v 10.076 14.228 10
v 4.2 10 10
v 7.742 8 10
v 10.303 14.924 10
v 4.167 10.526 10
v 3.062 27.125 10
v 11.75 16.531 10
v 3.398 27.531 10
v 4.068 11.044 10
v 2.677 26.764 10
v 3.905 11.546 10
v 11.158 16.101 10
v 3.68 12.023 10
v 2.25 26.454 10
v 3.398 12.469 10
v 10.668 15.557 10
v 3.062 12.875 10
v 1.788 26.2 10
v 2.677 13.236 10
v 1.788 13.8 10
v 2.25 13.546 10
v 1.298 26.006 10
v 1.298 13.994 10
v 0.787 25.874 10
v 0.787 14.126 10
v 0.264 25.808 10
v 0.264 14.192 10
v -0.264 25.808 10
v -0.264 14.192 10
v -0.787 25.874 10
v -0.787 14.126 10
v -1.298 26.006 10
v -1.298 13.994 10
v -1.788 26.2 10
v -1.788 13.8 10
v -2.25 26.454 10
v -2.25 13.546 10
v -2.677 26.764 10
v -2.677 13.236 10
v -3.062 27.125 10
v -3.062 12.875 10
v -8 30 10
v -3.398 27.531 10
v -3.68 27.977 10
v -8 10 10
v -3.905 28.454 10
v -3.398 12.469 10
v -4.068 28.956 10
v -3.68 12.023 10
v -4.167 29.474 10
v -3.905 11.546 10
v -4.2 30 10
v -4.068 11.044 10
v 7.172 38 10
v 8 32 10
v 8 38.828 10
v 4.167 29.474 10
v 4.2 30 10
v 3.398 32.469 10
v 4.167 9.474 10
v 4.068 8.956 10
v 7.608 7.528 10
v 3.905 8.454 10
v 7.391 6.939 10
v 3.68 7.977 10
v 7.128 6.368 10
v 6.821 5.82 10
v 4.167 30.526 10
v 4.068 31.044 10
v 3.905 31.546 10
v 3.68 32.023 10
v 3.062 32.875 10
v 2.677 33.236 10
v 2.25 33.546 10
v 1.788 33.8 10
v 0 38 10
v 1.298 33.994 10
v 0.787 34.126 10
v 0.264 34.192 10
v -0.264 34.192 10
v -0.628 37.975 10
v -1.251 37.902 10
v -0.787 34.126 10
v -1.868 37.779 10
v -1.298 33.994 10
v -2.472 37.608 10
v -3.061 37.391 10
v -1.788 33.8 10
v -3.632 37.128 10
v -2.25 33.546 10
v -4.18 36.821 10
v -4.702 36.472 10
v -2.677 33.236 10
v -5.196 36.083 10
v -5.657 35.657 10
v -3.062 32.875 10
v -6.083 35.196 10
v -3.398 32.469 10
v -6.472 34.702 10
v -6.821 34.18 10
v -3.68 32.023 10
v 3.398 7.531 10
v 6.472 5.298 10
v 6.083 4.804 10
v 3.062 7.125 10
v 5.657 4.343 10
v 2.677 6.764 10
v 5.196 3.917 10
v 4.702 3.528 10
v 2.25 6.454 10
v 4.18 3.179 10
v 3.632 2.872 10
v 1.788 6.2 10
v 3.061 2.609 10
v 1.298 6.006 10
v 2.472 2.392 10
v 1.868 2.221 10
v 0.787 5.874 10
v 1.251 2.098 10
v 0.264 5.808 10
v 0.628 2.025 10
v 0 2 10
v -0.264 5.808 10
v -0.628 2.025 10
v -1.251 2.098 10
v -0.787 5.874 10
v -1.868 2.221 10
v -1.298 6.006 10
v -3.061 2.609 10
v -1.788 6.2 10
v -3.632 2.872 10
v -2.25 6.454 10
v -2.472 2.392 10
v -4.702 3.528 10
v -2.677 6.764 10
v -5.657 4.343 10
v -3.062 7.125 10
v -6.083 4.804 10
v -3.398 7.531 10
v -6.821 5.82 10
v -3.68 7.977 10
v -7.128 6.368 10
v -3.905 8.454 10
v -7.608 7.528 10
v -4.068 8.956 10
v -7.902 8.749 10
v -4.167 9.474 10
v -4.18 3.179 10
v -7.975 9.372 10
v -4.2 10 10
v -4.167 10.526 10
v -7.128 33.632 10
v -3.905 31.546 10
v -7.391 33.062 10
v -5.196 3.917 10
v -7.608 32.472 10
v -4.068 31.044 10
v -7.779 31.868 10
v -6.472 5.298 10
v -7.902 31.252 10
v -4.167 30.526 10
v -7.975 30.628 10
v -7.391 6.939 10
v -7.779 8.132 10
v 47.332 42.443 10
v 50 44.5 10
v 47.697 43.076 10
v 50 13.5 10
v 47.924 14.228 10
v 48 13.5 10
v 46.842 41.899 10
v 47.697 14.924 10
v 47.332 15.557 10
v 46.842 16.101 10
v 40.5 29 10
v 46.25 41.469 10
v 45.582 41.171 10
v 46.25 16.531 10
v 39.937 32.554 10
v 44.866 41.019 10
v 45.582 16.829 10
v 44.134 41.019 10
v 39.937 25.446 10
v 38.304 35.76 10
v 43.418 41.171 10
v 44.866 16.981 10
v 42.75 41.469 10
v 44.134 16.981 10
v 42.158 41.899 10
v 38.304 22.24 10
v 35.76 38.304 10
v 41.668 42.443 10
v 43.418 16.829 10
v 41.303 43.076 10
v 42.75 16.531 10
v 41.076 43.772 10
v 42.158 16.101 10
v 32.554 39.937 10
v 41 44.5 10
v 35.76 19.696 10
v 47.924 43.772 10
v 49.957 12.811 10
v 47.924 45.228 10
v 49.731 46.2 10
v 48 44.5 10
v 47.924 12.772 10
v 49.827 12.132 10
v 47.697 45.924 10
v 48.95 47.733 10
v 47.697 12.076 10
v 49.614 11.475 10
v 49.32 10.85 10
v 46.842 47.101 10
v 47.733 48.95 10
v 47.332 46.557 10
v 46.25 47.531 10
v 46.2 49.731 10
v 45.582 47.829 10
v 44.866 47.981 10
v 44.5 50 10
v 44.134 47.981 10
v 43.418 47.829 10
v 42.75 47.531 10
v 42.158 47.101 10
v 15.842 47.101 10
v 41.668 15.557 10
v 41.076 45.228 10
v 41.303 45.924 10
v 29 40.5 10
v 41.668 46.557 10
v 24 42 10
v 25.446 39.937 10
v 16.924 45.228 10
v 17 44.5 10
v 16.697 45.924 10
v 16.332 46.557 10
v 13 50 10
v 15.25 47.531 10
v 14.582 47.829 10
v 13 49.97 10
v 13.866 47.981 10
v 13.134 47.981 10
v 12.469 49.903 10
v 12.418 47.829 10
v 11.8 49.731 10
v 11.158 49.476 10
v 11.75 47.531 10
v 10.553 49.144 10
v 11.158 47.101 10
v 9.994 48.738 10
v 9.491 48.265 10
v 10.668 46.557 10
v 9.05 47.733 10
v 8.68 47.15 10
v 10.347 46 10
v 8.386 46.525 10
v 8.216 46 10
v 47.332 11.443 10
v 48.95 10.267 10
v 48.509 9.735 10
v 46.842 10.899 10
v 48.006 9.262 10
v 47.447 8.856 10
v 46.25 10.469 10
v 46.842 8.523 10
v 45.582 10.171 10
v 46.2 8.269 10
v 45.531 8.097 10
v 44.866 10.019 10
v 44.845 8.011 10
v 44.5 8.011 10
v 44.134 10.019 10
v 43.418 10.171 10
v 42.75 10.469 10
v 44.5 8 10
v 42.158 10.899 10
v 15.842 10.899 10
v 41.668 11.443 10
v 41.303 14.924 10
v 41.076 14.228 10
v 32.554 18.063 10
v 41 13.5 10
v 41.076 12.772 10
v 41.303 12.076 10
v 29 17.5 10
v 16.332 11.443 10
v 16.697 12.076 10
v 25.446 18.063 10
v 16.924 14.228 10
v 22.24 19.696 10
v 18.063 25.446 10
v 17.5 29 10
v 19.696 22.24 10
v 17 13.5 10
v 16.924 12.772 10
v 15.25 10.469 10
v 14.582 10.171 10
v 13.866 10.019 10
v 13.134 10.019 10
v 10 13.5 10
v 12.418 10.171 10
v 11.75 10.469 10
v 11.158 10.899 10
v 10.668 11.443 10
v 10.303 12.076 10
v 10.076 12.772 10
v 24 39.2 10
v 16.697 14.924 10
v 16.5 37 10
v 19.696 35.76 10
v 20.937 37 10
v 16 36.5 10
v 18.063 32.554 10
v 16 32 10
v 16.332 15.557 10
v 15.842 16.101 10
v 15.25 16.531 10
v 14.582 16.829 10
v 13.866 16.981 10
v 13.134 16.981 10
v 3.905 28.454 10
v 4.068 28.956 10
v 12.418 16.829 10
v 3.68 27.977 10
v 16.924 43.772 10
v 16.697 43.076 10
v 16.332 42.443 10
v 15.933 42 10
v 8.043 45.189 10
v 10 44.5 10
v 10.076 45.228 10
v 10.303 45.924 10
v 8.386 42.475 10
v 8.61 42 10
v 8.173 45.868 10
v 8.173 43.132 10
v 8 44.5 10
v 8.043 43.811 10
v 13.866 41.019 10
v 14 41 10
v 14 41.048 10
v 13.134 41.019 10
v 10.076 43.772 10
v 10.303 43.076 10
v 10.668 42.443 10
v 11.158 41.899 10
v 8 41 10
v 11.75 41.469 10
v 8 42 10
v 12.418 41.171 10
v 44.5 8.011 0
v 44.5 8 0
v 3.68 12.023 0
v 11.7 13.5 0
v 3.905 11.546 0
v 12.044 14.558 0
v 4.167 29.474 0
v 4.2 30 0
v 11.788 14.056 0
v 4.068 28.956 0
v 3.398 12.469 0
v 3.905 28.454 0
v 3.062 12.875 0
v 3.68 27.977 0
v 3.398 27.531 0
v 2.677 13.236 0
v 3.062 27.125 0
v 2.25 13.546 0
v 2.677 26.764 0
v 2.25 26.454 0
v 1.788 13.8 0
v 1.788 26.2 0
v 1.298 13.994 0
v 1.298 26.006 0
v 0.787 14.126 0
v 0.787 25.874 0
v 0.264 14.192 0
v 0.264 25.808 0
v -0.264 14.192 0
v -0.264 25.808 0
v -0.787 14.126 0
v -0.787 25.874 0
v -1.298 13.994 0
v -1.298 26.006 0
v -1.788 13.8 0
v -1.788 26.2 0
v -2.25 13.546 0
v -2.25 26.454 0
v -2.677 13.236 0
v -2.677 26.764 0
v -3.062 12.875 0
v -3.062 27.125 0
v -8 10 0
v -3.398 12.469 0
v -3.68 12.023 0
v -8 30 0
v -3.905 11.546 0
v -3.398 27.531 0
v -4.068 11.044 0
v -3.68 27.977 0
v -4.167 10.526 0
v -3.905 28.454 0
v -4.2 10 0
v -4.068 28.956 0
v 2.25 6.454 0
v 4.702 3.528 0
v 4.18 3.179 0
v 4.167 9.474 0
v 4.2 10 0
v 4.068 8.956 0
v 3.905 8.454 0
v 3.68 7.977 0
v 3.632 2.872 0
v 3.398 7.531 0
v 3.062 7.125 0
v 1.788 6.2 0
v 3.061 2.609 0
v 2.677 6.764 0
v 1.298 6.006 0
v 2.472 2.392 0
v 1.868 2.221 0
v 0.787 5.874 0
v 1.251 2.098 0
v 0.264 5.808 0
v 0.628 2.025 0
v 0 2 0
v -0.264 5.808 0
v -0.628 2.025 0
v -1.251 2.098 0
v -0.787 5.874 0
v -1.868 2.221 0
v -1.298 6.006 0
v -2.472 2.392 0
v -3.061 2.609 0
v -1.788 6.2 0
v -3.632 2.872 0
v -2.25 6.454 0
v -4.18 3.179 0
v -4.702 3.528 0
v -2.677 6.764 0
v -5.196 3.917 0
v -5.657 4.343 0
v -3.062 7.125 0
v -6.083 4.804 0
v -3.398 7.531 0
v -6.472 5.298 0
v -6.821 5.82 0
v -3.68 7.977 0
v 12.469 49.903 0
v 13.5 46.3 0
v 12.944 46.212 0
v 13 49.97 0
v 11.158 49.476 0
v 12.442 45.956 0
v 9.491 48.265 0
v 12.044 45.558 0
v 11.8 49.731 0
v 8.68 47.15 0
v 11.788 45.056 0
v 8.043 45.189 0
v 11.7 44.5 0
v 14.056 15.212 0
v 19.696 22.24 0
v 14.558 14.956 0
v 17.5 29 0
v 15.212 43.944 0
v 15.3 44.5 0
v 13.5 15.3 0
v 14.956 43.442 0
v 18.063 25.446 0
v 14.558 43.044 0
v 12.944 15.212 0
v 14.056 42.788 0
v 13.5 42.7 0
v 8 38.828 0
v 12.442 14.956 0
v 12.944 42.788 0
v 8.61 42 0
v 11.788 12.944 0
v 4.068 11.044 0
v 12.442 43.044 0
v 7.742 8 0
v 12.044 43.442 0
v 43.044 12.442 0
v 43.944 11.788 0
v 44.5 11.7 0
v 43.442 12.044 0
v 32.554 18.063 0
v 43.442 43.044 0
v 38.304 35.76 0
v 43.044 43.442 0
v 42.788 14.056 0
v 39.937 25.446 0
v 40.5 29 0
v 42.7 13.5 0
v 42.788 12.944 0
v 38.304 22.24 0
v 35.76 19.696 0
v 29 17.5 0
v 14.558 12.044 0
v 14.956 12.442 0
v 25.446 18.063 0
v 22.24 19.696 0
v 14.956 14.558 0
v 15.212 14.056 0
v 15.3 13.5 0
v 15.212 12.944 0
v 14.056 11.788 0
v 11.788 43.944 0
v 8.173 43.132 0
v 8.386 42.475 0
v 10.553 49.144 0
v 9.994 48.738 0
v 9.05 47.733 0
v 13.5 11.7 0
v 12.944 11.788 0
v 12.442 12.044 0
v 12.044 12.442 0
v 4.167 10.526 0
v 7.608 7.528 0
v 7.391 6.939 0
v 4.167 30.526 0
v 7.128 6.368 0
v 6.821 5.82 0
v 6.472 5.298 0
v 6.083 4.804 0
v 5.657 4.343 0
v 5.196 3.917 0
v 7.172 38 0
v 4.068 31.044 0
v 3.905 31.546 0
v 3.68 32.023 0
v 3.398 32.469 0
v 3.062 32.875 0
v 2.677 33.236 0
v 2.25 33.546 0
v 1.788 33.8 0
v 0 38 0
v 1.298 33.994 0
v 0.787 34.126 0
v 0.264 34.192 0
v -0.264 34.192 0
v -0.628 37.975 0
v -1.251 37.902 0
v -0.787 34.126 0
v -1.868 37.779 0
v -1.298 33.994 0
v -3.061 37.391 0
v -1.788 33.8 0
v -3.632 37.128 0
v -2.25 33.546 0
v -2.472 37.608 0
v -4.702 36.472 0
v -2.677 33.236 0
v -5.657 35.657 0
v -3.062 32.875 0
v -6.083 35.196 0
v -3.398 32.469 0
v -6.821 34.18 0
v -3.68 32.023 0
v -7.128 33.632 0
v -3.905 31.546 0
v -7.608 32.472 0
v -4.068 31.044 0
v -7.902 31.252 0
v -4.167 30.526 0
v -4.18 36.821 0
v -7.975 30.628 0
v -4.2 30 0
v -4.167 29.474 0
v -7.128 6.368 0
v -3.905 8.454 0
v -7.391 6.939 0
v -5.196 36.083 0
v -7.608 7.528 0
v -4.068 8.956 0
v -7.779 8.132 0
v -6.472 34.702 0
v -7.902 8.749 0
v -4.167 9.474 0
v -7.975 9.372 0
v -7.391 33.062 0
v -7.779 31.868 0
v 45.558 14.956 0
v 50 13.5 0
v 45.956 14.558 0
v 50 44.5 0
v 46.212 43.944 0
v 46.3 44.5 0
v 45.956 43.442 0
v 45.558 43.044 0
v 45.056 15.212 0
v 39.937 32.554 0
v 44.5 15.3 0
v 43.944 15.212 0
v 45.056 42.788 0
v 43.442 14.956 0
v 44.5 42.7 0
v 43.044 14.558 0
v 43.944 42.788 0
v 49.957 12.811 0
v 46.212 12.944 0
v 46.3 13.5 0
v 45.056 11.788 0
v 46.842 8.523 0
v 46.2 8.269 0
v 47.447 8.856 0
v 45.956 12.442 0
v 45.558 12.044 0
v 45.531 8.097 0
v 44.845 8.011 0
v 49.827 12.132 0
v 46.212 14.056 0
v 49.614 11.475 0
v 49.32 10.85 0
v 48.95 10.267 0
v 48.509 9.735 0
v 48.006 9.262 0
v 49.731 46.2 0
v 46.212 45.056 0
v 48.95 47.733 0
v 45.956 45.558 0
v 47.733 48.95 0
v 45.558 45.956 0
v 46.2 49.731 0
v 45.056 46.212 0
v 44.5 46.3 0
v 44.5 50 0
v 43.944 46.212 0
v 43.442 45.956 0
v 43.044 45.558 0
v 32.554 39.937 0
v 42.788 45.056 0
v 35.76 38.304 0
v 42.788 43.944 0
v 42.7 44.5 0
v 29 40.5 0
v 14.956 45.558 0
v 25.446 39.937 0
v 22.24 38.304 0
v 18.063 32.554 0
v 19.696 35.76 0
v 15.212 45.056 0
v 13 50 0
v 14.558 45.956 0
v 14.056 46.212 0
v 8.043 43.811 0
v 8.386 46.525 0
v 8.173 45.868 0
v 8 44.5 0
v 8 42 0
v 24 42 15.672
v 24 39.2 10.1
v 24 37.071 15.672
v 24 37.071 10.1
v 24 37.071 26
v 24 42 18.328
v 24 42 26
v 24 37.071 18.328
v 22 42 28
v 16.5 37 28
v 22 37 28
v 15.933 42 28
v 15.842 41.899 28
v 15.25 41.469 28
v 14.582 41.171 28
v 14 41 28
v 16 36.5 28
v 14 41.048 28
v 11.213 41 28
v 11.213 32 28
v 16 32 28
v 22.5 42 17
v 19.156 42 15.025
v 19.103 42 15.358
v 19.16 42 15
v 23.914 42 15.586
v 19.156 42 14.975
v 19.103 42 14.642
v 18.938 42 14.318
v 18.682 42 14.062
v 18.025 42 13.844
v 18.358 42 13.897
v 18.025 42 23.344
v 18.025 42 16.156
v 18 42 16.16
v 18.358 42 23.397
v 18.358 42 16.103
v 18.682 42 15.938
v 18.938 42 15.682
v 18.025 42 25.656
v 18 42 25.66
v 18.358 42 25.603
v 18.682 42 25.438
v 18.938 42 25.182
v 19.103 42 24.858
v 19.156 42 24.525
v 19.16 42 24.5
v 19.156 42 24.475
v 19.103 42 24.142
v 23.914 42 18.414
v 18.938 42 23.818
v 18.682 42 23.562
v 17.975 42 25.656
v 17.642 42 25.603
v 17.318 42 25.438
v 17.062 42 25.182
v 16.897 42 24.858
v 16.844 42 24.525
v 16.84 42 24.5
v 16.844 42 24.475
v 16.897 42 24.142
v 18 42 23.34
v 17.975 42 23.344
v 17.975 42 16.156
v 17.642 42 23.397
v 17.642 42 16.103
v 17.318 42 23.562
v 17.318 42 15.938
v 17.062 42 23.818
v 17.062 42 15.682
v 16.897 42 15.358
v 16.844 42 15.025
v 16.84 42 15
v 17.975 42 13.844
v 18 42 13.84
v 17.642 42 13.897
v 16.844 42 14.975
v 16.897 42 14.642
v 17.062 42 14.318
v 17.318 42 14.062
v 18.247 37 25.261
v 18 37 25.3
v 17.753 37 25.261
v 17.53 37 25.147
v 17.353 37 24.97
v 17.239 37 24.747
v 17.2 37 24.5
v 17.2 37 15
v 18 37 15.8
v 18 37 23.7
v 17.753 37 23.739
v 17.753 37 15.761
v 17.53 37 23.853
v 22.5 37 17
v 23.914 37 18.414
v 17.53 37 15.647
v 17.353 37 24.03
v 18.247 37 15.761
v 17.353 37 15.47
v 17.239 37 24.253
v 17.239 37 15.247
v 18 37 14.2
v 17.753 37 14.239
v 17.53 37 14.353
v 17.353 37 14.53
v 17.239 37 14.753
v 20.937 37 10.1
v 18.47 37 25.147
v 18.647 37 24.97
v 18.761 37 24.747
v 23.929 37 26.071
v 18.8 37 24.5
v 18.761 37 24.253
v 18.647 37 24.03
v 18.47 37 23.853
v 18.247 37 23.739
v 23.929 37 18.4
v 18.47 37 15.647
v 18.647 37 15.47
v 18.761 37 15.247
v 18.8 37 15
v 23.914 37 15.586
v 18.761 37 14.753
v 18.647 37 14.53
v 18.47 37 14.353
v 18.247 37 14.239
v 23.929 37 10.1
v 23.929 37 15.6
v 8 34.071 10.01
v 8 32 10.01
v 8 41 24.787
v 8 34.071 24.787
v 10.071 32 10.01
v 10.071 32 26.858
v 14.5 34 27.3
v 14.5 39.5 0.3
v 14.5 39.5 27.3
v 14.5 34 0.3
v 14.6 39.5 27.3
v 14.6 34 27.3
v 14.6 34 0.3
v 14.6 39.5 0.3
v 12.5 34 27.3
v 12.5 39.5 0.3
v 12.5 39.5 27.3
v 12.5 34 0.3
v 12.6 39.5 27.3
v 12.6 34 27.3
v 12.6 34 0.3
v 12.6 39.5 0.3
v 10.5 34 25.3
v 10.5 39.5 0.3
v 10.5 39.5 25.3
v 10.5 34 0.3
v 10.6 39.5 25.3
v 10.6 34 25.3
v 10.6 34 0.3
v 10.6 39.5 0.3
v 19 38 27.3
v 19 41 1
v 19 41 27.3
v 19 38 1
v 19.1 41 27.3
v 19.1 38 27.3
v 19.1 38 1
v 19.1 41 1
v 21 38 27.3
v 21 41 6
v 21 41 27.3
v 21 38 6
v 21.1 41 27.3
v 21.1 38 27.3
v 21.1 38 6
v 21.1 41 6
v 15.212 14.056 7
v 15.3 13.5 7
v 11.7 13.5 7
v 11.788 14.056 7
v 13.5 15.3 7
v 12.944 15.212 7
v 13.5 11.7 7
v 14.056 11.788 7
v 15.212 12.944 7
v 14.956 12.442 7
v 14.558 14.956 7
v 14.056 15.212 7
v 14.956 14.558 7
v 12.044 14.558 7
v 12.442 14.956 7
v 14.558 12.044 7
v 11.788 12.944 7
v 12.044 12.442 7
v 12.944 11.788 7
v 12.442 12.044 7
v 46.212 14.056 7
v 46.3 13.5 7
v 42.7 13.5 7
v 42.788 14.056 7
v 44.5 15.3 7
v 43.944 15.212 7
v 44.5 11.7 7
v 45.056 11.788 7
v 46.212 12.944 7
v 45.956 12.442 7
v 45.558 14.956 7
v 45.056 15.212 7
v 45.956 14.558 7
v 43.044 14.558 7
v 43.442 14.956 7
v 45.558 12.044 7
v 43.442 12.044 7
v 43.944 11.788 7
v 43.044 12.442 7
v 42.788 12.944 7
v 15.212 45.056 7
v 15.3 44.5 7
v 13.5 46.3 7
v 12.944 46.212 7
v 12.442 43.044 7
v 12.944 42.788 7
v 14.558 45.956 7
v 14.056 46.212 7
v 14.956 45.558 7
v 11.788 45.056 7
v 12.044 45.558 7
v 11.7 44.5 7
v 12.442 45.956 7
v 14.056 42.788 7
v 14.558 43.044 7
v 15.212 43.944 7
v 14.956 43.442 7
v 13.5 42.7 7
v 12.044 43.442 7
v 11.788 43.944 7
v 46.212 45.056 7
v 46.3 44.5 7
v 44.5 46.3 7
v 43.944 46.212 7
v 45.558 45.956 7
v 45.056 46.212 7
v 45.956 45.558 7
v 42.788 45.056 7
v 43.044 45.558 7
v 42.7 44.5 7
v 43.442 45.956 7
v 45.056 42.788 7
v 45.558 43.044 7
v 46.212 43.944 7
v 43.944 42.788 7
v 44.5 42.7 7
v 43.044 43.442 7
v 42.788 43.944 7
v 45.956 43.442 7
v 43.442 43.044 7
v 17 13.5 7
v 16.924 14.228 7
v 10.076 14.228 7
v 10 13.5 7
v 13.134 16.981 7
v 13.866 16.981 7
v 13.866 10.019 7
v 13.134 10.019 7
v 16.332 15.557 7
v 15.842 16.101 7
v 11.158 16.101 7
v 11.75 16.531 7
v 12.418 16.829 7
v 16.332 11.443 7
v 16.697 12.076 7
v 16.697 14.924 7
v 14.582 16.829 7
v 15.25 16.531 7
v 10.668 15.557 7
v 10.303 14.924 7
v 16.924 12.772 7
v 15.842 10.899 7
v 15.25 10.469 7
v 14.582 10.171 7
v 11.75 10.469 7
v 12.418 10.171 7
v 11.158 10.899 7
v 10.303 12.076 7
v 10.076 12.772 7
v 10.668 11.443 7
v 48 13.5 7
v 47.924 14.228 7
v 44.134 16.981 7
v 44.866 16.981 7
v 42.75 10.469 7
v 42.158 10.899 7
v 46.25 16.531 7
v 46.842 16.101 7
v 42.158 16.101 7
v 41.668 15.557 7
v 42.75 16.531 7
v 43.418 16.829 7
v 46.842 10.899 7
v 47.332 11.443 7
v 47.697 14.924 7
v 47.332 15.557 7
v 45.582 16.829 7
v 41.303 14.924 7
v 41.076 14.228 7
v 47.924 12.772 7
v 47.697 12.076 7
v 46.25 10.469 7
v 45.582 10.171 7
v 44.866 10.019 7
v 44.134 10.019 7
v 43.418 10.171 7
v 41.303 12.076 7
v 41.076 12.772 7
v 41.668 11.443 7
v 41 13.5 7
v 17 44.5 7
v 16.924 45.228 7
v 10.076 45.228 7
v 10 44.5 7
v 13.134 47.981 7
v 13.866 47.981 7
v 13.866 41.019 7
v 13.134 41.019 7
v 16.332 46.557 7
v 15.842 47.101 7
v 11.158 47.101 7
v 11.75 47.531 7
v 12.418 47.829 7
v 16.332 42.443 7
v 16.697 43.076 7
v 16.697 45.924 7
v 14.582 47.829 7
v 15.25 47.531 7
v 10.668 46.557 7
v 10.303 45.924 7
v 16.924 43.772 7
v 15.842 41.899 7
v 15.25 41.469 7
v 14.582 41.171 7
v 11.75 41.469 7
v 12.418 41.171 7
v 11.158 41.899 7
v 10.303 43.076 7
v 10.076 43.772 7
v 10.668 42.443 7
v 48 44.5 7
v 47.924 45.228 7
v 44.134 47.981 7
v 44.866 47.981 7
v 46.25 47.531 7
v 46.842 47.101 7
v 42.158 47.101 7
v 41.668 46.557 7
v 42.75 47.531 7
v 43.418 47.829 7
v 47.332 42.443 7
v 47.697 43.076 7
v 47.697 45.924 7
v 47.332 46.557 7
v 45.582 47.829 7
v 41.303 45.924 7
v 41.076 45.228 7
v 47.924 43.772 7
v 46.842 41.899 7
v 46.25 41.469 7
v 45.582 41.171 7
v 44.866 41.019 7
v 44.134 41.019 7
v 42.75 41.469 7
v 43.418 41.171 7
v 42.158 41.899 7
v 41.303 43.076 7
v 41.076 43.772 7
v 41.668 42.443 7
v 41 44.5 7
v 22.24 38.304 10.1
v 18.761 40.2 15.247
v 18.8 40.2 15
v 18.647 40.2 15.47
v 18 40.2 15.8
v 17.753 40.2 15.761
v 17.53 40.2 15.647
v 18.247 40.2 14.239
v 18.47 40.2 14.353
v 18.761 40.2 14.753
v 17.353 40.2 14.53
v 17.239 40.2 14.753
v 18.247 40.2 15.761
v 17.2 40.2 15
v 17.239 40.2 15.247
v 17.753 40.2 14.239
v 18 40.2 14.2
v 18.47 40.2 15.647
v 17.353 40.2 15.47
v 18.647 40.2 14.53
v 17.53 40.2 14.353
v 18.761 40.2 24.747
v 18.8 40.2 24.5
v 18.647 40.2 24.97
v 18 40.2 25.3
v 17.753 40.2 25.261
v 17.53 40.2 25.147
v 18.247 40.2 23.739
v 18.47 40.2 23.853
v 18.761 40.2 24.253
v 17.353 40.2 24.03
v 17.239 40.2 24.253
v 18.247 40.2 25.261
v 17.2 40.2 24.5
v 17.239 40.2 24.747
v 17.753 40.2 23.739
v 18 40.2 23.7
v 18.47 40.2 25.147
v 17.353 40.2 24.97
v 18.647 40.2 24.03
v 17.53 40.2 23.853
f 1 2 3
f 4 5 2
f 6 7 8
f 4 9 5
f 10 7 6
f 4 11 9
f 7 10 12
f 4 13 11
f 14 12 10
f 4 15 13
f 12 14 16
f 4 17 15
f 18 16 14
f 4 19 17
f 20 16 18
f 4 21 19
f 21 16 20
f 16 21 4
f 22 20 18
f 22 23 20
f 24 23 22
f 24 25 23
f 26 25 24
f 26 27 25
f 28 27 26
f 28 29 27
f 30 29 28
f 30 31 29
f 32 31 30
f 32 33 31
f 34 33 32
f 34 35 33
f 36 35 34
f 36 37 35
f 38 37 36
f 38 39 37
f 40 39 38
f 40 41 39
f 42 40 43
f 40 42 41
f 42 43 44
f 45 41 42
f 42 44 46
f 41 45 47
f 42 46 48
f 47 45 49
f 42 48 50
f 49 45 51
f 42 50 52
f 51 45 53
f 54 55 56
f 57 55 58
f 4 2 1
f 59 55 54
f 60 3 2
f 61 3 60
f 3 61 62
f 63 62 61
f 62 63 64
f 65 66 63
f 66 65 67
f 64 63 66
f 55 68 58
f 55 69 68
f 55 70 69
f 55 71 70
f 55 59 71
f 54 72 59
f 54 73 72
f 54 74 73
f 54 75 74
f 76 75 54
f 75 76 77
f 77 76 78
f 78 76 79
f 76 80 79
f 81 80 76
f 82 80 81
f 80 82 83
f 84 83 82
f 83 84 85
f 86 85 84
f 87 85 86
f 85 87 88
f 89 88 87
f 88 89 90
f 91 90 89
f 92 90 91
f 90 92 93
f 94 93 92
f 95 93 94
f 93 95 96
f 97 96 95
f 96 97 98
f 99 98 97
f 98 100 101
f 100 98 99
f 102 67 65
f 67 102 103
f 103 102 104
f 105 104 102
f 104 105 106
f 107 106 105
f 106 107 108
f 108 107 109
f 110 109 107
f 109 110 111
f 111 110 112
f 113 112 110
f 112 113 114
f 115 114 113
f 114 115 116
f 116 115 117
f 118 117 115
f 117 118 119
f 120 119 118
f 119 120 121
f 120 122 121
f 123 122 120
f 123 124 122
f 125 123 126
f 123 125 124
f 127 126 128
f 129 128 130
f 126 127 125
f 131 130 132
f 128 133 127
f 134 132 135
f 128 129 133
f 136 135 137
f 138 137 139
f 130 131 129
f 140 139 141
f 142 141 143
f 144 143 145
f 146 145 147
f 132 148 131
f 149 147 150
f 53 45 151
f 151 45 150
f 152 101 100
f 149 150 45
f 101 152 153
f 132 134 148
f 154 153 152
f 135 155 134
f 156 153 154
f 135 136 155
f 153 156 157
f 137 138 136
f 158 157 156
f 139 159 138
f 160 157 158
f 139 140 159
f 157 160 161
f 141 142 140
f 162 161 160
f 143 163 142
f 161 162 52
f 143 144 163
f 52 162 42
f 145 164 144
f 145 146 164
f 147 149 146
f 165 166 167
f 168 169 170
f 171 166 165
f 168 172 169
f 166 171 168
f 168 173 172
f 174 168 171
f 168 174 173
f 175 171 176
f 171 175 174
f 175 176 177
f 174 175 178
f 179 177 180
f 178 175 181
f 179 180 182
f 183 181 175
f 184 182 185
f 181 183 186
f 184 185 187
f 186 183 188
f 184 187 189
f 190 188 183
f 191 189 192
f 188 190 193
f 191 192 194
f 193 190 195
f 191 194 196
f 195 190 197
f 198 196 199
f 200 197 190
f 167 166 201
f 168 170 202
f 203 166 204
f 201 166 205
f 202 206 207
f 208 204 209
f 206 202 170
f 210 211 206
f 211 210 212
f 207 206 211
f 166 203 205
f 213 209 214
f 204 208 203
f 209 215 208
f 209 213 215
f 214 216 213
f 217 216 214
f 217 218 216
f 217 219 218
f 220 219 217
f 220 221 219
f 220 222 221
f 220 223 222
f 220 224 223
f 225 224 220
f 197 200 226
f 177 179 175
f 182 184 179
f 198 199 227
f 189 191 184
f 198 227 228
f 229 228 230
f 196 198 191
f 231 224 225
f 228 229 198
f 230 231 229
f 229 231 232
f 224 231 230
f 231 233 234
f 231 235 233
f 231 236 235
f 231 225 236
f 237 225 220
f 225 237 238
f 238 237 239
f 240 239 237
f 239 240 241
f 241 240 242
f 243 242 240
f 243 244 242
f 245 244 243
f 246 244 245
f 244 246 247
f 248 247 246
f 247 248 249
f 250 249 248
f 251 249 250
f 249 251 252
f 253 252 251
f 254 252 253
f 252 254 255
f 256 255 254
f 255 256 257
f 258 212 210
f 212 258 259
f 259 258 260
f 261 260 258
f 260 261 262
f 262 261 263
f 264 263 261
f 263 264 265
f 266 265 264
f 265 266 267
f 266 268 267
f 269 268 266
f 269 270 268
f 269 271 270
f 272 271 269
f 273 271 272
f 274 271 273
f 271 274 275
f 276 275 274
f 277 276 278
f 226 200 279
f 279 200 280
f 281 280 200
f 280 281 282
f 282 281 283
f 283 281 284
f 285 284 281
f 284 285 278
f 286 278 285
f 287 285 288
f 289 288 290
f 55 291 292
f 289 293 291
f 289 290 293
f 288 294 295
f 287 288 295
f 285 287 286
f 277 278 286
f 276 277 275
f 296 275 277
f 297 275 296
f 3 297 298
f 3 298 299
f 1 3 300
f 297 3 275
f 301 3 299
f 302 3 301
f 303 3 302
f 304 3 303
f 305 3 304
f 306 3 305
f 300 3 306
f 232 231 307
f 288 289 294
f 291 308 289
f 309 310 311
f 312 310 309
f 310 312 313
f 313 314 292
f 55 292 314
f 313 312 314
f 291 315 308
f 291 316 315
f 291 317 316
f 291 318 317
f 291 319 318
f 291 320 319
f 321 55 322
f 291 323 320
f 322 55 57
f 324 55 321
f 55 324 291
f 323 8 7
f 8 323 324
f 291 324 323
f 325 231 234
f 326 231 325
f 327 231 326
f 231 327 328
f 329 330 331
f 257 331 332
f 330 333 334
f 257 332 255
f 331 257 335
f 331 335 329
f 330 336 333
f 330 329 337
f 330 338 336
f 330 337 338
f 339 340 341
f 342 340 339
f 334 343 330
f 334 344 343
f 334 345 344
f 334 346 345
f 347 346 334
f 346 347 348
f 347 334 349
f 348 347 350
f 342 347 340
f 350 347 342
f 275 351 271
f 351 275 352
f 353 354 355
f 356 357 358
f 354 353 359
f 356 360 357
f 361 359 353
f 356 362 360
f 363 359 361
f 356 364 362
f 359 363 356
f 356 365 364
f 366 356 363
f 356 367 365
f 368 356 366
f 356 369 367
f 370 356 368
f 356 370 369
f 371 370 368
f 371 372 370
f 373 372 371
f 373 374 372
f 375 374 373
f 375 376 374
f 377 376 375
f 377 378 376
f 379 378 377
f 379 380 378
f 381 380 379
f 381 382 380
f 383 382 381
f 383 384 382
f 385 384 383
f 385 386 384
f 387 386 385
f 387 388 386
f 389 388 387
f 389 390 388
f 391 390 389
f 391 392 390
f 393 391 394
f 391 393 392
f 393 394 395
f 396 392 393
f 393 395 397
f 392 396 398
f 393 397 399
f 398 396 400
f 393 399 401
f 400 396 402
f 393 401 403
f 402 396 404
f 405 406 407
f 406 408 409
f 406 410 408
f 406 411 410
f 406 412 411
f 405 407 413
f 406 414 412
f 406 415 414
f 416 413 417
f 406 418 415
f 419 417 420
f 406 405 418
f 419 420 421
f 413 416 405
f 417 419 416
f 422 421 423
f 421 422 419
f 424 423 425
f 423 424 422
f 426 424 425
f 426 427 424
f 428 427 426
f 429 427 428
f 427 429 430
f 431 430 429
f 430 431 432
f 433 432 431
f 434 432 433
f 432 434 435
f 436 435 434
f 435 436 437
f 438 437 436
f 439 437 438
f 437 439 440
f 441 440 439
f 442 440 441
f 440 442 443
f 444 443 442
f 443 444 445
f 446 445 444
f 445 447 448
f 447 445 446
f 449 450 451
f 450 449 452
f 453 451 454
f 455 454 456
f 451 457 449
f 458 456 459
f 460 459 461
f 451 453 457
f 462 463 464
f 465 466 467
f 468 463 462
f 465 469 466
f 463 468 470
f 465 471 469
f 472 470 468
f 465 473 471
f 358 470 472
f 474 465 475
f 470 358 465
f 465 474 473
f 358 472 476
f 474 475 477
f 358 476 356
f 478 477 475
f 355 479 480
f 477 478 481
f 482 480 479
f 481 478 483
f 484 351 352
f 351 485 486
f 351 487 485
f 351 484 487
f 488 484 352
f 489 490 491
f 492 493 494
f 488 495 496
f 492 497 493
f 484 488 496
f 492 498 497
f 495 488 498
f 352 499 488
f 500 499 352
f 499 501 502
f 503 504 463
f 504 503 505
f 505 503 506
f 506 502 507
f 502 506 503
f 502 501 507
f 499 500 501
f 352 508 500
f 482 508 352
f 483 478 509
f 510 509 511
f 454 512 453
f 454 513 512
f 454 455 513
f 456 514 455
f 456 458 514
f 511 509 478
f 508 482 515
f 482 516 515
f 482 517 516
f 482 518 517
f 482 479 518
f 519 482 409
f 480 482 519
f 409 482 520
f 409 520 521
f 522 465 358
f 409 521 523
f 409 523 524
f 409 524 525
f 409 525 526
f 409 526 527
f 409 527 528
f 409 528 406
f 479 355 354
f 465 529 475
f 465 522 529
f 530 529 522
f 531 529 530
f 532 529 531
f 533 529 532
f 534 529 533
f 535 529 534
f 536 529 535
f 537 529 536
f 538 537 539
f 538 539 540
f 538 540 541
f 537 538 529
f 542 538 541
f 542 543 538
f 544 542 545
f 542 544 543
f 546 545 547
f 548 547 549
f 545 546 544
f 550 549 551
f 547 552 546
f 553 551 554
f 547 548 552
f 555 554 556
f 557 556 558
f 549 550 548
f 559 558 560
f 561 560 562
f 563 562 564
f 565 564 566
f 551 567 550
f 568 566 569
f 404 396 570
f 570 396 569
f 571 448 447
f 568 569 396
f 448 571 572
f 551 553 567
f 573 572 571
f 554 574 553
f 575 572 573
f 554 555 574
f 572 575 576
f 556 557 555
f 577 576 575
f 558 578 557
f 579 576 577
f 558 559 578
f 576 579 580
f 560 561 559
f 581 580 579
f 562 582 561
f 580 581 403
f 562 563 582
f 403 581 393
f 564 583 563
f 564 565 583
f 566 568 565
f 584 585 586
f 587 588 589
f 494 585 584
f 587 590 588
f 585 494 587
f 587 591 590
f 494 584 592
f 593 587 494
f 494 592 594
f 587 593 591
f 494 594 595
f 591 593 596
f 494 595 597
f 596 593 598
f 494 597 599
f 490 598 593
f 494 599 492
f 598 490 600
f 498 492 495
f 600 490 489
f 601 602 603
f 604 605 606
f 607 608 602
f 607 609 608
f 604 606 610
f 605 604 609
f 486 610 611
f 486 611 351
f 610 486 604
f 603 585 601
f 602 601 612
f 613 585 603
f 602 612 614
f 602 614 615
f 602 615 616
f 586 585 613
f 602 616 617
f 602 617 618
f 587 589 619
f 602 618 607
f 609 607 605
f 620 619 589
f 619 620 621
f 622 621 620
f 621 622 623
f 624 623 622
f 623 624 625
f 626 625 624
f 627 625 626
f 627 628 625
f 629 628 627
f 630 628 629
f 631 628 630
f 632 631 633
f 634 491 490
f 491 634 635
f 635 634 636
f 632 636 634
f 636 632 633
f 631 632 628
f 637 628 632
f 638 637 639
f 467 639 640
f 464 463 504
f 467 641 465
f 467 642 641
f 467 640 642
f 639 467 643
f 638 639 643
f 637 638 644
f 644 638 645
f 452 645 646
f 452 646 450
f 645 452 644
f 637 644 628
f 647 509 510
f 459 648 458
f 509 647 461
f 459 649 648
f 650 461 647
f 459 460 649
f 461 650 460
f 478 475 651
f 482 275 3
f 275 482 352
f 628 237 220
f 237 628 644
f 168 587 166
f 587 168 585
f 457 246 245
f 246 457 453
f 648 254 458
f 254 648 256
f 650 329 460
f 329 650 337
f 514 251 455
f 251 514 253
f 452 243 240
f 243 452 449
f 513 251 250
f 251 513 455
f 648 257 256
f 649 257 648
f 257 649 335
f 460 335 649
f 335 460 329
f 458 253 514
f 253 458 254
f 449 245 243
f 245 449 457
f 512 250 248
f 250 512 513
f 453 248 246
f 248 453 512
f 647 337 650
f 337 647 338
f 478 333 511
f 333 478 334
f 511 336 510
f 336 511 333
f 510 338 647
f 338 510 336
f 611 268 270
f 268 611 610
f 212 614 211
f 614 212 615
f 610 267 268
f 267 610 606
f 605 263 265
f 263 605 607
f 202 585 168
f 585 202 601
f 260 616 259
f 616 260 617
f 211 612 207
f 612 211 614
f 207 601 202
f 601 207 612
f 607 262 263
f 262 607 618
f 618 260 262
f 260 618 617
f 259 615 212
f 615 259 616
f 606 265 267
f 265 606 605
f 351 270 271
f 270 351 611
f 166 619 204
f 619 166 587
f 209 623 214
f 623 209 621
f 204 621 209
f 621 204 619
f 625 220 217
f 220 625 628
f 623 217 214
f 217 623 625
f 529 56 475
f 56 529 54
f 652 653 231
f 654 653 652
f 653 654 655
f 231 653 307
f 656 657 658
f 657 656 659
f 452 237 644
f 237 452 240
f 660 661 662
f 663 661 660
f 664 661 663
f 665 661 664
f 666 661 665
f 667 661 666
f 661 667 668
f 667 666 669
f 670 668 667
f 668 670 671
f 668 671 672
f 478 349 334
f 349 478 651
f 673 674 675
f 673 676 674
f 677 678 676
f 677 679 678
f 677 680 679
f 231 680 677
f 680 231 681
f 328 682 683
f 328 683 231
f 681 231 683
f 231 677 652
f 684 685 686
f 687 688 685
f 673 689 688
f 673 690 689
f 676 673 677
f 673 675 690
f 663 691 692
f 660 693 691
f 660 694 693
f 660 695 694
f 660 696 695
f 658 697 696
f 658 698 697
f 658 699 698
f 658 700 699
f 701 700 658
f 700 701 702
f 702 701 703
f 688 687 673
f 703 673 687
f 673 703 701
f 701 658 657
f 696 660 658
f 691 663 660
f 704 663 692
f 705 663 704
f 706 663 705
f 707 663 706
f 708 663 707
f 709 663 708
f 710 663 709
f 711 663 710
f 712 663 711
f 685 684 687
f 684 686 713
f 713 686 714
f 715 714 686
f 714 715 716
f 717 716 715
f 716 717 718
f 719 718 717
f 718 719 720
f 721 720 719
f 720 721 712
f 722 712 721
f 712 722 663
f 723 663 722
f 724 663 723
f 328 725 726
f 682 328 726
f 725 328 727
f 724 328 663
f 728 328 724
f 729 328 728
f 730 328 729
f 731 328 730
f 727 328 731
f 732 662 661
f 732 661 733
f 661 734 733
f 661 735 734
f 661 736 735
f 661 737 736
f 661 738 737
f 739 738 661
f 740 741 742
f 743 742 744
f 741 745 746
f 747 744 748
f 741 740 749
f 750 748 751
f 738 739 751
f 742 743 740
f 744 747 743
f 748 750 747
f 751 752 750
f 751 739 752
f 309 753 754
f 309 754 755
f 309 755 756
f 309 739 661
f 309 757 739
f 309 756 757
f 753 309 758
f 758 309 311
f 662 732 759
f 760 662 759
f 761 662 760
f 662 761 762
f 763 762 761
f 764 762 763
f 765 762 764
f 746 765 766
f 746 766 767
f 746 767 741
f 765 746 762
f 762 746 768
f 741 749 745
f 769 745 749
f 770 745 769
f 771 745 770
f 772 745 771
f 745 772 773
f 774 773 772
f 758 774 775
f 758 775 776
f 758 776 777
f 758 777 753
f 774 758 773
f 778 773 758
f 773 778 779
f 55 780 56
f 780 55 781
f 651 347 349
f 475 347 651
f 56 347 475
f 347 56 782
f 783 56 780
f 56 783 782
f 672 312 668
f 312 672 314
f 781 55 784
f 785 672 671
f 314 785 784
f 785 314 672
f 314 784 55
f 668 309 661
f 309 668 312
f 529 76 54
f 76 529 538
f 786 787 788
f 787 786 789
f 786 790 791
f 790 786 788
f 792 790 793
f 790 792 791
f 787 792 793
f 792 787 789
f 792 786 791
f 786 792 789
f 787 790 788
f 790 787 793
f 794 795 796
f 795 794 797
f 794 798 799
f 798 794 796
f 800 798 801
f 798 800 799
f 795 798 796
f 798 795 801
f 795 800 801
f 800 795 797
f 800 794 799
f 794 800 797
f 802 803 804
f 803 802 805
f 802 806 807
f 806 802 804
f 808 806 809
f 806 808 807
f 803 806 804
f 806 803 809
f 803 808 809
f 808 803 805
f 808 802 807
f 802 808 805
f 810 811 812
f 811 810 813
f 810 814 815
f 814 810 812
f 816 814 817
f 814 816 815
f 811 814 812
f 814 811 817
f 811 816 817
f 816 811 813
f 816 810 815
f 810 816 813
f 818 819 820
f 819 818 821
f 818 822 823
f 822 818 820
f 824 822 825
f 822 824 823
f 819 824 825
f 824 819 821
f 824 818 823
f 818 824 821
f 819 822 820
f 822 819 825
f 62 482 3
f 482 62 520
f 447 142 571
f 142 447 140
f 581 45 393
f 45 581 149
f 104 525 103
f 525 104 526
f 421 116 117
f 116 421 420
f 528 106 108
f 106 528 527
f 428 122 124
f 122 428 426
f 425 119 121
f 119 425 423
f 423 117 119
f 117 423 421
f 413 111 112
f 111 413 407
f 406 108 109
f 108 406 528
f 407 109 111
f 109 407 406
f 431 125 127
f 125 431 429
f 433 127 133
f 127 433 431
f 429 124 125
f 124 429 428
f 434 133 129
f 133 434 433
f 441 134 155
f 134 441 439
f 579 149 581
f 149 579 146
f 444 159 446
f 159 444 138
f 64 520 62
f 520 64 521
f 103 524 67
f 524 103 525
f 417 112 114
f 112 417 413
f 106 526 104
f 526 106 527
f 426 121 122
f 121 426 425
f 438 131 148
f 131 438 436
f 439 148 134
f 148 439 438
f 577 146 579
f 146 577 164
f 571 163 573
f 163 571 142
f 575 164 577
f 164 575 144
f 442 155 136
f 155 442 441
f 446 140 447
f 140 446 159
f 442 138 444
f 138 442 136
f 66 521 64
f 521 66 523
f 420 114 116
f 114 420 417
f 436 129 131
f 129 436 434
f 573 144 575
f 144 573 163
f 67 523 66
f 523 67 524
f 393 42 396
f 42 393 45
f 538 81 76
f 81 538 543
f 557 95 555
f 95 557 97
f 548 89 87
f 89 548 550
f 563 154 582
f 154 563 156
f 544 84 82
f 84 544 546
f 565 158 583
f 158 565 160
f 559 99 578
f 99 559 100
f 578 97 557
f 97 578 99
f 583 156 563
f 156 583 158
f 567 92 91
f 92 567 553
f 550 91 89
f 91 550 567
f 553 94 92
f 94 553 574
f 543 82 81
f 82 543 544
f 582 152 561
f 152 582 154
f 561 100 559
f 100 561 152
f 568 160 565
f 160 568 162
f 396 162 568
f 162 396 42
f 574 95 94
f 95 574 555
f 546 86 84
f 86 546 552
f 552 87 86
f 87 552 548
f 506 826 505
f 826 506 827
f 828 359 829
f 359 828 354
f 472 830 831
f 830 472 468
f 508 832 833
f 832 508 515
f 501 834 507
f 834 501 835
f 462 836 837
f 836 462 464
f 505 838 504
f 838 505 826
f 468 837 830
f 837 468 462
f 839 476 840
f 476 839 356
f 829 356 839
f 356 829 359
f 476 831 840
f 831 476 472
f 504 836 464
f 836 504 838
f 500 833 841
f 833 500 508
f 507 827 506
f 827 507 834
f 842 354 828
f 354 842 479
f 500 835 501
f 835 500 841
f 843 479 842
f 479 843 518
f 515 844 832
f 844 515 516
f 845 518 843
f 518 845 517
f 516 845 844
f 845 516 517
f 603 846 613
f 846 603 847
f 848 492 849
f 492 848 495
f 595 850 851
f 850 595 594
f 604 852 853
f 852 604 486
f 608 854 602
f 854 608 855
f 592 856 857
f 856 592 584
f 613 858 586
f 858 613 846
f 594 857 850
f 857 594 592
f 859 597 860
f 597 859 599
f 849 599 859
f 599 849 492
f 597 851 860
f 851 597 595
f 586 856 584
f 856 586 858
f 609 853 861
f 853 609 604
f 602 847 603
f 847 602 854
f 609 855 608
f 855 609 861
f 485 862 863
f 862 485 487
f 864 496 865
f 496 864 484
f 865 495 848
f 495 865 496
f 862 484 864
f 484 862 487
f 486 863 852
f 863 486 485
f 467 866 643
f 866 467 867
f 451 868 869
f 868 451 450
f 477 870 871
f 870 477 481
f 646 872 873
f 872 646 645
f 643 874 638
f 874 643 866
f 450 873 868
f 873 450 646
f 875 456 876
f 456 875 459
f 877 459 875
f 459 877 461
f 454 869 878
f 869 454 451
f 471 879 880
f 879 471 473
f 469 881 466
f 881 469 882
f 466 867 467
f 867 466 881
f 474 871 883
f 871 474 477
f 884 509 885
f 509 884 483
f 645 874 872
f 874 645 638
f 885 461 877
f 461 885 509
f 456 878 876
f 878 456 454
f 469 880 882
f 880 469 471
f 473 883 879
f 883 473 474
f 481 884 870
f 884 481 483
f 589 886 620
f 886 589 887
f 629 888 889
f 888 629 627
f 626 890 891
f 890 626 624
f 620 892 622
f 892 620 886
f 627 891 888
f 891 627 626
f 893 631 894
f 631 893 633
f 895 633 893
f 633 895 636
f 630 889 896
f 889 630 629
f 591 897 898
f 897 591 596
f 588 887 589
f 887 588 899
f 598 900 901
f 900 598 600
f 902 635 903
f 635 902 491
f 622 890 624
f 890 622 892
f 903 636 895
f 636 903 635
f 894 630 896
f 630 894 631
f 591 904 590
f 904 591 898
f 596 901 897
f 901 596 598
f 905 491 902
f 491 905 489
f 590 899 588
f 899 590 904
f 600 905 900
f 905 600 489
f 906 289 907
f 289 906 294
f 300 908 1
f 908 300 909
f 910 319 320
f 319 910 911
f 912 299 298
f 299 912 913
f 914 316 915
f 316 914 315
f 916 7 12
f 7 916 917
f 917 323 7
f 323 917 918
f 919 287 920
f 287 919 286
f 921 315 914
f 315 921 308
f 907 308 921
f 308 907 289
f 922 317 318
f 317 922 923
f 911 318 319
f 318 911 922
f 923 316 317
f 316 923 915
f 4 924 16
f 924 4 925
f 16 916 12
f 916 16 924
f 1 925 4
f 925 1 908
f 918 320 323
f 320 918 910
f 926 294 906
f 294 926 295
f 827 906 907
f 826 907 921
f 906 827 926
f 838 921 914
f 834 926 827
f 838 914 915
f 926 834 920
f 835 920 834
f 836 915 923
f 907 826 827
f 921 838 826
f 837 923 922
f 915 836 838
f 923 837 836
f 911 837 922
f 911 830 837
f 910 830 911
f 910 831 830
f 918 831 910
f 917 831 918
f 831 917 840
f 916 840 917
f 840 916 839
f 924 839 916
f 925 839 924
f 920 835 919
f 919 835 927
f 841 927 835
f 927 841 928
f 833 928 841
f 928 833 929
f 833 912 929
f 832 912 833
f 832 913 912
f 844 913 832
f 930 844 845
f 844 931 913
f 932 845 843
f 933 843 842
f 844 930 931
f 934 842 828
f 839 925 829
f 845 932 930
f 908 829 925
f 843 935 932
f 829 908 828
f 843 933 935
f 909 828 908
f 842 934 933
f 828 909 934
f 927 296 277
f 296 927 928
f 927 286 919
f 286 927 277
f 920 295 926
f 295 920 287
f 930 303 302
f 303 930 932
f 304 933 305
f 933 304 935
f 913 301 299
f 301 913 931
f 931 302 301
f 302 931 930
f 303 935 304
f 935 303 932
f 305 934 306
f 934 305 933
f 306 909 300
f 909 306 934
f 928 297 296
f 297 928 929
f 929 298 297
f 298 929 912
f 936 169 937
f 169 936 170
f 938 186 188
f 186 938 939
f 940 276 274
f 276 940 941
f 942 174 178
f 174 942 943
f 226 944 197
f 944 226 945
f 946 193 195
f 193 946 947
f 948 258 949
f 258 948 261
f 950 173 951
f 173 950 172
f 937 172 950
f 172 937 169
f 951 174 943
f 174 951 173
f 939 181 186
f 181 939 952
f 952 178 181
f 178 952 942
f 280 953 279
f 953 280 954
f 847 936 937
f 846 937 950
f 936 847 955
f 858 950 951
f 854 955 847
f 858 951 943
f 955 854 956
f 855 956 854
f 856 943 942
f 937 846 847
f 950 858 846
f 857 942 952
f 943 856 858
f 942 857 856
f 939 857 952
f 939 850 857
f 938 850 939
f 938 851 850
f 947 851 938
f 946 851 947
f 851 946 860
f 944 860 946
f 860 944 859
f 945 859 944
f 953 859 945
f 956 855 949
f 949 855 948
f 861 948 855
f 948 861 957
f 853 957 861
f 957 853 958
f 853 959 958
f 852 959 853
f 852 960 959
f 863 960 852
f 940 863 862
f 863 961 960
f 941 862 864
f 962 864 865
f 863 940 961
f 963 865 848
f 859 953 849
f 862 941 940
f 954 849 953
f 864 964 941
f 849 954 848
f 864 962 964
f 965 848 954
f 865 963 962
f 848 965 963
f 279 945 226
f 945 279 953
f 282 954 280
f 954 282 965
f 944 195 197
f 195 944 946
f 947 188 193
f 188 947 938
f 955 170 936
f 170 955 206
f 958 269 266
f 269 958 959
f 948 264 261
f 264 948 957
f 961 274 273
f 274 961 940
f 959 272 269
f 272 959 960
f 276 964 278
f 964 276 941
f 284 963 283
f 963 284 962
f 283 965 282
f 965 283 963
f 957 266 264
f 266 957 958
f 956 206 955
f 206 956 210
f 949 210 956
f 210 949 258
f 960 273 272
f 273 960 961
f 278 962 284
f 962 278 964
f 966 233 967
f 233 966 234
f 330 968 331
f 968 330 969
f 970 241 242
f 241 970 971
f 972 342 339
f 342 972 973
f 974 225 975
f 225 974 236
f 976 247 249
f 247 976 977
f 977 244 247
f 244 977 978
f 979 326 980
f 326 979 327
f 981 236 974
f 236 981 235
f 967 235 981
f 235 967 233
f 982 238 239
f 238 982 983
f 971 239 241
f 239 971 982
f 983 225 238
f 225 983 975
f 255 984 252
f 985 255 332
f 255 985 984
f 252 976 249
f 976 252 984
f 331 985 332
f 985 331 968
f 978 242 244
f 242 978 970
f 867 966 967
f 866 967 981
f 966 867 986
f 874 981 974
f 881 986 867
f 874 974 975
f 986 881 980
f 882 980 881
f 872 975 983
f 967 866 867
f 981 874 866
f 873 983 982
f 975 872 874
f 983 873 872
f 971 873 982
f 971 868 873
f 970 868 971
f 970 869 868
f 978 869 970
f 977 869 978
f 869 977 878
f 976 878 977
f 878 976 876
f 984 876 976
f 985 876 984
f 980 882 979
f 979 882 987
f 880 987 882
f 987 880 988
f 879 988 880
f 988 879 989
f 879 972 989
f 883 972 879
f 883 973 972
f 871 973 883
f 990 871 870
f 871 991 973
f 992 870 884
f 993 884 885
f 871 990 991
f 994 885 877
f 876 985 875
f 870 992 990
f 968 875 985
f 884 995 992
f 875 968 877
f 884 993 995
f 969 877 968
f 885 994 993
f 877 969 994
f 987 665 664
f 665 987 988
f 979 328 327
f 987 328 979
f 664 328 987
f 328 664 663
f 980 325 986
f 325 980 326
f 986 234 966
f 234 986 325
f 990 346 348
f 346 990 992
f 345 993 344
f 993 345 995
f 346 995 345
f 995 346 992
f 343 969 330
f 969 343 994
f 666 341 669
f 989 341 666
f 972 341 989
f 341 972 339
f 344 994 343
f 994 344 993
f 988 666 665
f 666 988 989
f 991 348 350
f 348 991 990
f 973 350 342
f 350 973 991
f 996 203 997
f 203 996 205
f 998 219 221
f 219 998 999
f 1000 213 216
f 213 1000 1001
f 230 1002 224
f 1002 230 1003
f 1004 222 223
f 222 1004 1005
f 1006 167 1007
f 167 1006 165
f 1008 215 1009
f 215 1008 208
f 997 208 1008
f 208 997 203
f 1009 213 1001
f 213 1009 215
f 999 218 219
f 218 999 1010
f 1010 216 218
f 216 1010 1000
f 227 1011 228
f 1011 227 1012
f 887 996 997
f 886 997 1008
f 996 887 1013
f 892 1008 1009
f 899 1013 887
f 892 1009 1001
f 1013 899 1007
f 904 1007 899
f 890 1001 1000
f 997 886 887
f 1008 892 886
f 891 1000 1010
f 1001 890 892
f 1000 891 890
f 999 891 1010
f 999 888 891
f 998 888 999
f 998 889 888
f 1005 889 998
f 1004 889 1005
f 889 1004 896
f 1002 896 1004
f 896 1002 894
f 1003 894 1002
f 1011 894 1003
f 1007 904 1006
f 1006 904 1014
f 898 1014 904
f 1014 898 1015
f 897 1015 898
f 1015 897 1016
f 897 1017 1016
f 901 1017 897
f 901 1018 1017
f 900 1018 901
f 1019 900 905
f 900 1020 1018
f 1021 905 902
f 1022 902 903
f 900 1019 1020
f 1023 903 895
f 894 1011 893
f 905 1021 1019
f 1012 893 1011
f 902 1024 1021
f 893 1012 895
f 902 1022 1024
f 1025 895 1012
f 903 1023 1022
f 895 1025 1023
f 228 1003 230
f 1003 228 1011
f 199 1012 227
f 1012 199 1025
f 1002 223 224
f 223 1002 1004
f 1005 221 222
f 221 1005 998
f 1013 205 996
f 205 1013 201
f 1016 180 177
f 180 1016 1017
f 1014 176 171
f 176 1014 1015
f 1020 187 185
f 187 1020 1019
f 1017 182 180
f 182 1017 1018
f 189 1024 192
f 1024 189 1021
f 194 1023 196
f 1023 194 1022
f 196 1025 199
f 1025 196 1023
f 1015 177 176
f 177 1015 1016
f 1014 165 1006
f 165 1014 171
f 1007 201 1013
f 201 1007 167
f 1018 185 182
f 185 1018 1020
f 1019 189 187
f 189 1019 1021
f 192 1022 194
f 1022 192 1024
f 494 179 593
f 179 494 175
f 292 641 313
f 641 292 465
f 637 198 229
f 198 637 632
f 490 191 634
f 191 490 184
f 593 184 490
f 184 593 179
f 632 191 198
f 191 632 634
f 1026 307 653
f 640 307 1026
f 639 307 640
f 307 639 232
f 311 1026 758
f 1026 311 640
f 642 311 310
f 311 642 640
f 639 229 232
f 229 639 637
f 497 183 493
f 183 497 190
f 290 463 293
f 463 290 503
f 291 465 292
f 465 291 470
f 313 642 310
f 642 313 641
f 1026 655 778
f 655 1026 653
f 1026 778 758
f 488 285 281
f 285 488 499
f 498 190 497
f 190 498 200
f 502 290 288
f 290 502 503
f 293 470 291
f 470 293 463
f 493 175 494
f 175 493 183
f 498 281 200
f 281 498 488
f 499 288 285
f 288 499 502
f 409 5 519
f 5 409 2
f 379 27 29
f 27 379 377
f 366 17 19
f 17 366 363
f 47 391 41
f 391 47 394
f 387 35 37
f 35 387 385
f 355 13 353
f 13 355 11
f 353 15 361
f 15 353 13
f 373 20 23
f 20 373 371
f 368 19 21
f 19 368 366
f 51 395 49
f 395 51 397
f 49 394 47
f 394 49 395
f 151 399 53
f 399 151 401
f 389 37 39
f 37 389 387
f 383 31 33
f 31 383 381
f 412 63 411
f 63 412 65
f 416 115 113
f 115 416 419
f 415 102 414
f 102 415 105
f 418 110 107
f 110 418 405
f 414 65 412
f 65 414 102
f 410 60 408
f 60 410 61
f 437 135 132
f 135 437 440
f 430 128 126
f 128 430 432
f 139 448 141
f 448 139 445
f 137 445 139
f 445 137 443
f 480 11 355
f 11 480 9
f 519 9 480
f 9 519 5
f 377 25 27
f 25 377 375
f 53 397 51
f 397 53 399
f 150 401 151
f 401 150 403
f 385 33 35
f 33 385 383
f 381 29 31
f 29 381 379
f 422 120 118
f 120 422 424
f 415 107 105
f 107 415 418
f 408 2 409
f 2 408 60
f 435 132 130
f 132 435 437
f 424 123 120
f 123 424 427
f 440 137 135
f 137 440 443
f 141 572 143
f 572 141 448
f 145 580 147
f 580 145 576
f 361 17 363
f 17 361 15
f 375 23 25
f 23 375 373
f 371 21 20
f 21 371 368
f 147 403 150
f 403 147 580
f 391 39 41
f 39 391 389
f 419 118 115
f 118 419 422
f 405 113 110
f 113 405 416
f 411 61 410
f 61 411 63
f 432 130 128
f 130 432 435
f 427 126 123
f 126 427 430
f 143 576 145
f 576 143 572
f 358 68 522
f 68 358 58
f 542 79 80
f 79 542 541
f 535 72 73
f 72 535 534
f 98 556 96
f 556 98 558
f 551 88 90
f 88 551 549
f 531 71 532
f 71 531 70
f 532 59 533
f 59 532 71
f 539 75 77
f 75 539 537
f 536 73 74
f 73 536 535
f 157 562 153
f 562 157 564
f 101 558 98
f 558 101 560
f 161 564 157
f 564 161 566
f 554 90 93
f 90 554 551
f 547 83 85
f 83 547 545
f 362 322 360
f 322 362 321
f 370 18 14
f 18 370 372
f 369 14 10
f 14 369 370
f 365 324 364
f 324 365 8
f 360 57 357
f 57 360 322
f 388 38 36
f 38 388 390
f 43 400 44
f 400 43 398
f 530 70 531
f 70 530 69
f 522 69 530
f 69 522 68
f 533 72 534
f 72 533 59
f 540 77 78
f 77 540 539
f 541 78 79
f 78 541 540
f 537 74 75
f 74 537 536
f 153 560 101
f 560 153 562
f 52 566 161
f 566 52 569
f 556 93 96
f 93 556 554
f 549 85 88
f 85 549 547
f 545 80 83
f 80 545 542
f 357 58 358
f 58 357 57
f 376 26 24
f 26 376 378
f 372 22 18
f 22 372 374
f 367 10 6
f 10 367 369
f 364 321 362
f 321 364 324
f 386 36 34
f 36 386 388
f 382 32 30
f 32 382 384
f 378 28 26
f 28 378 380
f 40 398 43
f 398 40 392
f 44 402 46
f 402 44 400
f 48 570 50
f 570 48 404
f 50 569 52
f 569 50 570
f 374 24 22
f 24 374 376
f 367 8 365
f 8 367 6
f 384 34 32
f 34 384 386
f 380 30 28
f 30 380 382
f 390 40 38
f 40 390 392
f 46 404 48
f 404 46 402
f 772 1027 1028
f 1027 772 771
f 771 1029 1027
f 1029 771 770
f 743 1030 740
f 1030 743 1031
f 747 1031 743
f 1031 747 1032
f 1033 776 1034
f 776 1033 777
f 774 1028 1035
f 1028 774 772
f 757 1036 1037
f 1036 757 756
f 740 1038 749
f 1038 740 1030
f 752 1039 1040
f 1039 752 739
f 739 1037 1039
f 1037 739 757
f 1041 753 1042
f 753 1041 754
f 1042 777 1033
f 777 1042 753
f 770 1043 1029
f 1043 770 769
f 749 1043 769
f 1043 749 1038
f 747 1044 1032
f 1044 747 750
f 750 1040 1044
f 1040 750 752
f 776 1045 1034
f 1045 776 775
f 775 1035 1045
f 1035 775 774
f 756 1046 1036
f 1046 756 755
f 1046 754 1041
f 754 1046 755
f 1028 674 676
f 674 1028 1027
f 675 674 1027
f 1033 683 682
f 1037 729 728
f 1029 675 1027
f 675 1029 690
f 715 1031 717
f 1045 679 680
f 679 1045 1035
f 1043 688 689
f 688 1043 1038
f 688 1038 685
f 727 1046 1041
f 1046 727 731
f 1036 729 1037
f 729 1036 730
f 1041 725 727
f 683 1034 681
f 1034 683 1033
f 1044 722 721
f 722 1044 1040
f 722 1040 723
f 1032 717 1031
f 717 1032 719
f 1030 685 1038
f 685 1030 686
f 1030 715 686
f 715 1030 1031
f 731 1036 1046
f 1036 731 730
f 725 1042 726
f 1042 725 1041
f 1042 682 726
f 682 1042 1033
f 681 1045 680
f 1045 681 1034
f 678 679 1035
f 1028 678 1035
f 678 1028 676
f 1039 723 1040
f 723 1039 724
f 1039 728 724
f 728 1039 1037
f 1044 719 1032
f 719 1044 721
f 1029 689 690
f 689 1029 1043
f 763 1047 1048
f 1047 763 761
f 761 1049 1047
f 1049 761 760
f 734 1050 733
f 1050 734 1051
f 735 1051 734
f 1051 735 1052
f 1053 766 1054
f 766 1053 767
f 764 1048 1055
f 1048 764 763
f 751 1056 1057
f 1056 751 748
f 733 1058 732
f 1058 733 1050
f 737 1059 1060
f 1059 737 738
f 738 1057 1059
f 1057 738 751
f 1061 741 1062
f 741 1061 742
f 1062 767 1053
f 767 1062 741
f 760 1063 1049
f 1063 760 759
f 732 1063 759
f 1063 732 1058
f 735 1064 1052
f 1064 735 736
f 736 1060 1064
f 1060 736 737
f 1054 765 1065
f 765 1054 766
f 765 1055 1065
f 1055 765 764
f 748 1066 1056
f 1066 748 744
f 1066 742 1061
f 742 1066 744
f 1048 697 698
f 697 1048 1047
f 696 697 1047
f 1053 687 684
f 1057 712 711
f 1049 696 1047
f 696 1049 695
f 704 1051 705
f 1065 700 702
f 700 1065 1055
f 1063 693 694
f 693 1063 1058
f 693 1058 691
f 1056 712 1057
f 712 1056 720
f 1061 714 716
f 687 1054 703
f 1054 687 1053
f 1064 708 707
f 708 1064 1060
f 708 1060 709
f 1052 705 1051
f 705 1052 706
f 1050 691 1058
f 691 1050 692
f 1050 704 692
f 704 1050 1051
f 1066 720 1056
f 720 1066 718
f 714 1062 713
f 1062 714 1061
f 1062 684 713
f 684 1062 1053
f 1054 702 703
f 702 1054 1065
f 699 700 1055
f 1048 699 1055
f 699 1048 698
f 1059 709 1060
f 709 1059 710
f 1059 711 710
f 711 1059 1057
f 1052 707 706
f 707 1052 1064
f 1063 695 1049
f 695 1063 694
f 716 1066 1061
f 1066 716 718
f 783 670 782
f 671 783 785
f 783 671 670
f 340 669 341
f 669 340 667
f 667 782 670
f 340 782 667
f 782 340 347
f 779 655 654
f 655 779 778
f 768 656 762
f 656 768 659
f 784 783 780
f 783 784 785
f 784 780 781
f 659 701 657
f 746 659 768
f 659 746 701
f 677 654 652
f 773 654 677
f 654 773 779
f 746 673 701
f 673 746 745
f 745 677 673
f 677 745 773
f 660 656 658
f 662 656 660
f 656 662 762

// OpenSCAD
// PRUSA iteration3
// Y motor mount
// GNU GPL v3
// Josef Průša <iam@josefprusa.cz> and contributors
// http://www.reprap.org/wiki/Prusa_Mendel
// http://prusamendel.org

//include <configuration.scad>

module y_motor_base(){
    
    union()
    {
    // Motor holding part
    translate(v = [29,-21+50,0]){
        
    difference()
    {    
     union()
    {
    translate(v = [-15.5,-21,0]) cube(size = [31,42,10]);
    translate(v = [+15.5,-15.5,0]) cube(size = [5.5,31,10]);
    translate(v = [-15.5,-15.5,0]) cylinder(h = 10, r=5.5, $fn=50);
    translate(v = [-15.5,+15.5,0]) cylinder(h = 10, r=5.5, $fn=50);
    translate(v = [+15.5,-15.5,0]) cylinder(h = 10, r=5.5, $fn=50);
    translate(v = [+15.5,+15.5,0]) cylinder(h = 10, r=5.5, $fn=20);
    translate([-21,7,0]) rotate([0,0,45]) cube([2, 2, 10]);    
 
    //end stop
    translate(v = [-10.5,+15.5,0]) cylinder(h = 10, r=5.5, $fn=50);
    translate([-12,0,0]) cube([7, 15, 10]);
    translate([-16,16,0]) cube([6, 5, 10]);
    translate([-21+6,8,0]) cube([12-2, 5, 28]);    
    translate([-21,8-5,0]) cube([8, 10, 28]);      
    translate([-21+9.5-2,7,0]) rotate([0,0,45]) cube([2, 2, 28]);    
    // Joins motor holder and rod plate
    translate(v = [-29,-21,0]) cube(size = [14,30,10]);
    }    
        //selective infill
        translate([-14.5,5,0.3]) cube([0.1,5.5,27]);
        translate([-16.5,5,0.3]) cube([0.1,5.5,27]);
        translate([-18.5,5,0.3]) cube([0.1,5.5,25]);
        translate([-10,9,1]) cube([0.1,3,26.3]);
        translate([-8,9,6]) cube([0.1,3,21.3]);
        
    }
}
}

     // Front holding part
     translate(v = [0,10,0])cylinder(h = 10, r=8, $fn=80);
     translate(v = [0,20,5])cube(size = [16,20,10], center=true);	
     translate(v = [0,30,0])cylinder(h = 10, r=8, $fn=80);


}

module y_motor_holes(){
    translate(v = [29,-21+50,0]){
    // Screw head holes
		// BL
    	color("pink") translate(v = [-15.5,-15.5,-1]) cylinder(h = 10, r=1.8, $fn=20);
		// BR
		color("pink") translate(v = [+15.5,-15.5,-1]) cylinder(h = 10, r=1.8, $fn=20);
		// TL
		color("pink") translate(v = [-15.5,+15.5,-1]) cylinder(h = 10, r=1.8, $fn=20);
		// TR
		color("pink") translate(v = [+15.5,+15.5,-1]) cylinder(h = 10, r=1.8, $fn=20);
    // Screw holes
	// TL
		color("pink") translate(v = [-15.5,-15.5,7]) cylinder(h = 7, r=3.5, $fn=30);
	// TR
		color("pink") translate(v = [+15.5,-15.5,7]) cylinder(h = 7, r=3.5, $fn=30);
	// BL
		color("pink") translate(v = [-15.5,+15.5,7]) cylinder(h = 25, r=3.5, $fn=30);
	// BR
		color("pink") translate(v = [+15.5,+15.5,7]) cylinder(h = 25, r=3.5, $fn=30);
	// Motor hole
    	color("yellow") translate([0,0,-1])  cylinder(h = 11.1, r=11.5, $fn=20); 
 }
    translate(v = [0,10,-1]) cylinder(h = 12, r=4.2, $fn=50);	
    translate(v = [0,30,-1]) cylinder(h = 12, r=4.2, $fn=50);
    
    color("green") translate([18,45,15]) rotate([90,0,0]) cylinder(h = 10, r=0.8, $fn=20);
    color("green") translate([18,42.2,15]) rotate([90,0,0]) cylinder(h = 2, r1=1.2, r2=0.8, $fn=20);
 
    color("green") translate([18,45,24.5]) rotate([90,0,0]) cylinder(h = 10, r=0.8, $fn=20);
    color("green") translate([18,42.2,24.5]) rotate([90,0,0]) cylinder(h = 2, r1=1.2, r2=0.8, $fn=20);
   
    // endstop corner cutout
    translate([-10,30,28]) rotate([0,45,0]) cube([15, 19, 15]);	
    translate([-1,41,10])  cube([15, 5, 19]);	
    translate([27,33,10]) rotate([0,0,45]) cube([5, 5, 18]);	
    translate([7,28,10.01]) rotate([0,0,45]) cube([5, 5, 18]); 
    
    translate([24.5-2,36.5,17]) rotate([0,45,0]) cube([2, 6, 2]);	
    
    translate([23-2,32,29]) rotate([0,45,0]) cube([5, 20, 5]);	
}





// Final part
module y_motor(){
    difference()
    {
        y_motor_base();
        y_motor_holes();
    }
}


y_motor();
